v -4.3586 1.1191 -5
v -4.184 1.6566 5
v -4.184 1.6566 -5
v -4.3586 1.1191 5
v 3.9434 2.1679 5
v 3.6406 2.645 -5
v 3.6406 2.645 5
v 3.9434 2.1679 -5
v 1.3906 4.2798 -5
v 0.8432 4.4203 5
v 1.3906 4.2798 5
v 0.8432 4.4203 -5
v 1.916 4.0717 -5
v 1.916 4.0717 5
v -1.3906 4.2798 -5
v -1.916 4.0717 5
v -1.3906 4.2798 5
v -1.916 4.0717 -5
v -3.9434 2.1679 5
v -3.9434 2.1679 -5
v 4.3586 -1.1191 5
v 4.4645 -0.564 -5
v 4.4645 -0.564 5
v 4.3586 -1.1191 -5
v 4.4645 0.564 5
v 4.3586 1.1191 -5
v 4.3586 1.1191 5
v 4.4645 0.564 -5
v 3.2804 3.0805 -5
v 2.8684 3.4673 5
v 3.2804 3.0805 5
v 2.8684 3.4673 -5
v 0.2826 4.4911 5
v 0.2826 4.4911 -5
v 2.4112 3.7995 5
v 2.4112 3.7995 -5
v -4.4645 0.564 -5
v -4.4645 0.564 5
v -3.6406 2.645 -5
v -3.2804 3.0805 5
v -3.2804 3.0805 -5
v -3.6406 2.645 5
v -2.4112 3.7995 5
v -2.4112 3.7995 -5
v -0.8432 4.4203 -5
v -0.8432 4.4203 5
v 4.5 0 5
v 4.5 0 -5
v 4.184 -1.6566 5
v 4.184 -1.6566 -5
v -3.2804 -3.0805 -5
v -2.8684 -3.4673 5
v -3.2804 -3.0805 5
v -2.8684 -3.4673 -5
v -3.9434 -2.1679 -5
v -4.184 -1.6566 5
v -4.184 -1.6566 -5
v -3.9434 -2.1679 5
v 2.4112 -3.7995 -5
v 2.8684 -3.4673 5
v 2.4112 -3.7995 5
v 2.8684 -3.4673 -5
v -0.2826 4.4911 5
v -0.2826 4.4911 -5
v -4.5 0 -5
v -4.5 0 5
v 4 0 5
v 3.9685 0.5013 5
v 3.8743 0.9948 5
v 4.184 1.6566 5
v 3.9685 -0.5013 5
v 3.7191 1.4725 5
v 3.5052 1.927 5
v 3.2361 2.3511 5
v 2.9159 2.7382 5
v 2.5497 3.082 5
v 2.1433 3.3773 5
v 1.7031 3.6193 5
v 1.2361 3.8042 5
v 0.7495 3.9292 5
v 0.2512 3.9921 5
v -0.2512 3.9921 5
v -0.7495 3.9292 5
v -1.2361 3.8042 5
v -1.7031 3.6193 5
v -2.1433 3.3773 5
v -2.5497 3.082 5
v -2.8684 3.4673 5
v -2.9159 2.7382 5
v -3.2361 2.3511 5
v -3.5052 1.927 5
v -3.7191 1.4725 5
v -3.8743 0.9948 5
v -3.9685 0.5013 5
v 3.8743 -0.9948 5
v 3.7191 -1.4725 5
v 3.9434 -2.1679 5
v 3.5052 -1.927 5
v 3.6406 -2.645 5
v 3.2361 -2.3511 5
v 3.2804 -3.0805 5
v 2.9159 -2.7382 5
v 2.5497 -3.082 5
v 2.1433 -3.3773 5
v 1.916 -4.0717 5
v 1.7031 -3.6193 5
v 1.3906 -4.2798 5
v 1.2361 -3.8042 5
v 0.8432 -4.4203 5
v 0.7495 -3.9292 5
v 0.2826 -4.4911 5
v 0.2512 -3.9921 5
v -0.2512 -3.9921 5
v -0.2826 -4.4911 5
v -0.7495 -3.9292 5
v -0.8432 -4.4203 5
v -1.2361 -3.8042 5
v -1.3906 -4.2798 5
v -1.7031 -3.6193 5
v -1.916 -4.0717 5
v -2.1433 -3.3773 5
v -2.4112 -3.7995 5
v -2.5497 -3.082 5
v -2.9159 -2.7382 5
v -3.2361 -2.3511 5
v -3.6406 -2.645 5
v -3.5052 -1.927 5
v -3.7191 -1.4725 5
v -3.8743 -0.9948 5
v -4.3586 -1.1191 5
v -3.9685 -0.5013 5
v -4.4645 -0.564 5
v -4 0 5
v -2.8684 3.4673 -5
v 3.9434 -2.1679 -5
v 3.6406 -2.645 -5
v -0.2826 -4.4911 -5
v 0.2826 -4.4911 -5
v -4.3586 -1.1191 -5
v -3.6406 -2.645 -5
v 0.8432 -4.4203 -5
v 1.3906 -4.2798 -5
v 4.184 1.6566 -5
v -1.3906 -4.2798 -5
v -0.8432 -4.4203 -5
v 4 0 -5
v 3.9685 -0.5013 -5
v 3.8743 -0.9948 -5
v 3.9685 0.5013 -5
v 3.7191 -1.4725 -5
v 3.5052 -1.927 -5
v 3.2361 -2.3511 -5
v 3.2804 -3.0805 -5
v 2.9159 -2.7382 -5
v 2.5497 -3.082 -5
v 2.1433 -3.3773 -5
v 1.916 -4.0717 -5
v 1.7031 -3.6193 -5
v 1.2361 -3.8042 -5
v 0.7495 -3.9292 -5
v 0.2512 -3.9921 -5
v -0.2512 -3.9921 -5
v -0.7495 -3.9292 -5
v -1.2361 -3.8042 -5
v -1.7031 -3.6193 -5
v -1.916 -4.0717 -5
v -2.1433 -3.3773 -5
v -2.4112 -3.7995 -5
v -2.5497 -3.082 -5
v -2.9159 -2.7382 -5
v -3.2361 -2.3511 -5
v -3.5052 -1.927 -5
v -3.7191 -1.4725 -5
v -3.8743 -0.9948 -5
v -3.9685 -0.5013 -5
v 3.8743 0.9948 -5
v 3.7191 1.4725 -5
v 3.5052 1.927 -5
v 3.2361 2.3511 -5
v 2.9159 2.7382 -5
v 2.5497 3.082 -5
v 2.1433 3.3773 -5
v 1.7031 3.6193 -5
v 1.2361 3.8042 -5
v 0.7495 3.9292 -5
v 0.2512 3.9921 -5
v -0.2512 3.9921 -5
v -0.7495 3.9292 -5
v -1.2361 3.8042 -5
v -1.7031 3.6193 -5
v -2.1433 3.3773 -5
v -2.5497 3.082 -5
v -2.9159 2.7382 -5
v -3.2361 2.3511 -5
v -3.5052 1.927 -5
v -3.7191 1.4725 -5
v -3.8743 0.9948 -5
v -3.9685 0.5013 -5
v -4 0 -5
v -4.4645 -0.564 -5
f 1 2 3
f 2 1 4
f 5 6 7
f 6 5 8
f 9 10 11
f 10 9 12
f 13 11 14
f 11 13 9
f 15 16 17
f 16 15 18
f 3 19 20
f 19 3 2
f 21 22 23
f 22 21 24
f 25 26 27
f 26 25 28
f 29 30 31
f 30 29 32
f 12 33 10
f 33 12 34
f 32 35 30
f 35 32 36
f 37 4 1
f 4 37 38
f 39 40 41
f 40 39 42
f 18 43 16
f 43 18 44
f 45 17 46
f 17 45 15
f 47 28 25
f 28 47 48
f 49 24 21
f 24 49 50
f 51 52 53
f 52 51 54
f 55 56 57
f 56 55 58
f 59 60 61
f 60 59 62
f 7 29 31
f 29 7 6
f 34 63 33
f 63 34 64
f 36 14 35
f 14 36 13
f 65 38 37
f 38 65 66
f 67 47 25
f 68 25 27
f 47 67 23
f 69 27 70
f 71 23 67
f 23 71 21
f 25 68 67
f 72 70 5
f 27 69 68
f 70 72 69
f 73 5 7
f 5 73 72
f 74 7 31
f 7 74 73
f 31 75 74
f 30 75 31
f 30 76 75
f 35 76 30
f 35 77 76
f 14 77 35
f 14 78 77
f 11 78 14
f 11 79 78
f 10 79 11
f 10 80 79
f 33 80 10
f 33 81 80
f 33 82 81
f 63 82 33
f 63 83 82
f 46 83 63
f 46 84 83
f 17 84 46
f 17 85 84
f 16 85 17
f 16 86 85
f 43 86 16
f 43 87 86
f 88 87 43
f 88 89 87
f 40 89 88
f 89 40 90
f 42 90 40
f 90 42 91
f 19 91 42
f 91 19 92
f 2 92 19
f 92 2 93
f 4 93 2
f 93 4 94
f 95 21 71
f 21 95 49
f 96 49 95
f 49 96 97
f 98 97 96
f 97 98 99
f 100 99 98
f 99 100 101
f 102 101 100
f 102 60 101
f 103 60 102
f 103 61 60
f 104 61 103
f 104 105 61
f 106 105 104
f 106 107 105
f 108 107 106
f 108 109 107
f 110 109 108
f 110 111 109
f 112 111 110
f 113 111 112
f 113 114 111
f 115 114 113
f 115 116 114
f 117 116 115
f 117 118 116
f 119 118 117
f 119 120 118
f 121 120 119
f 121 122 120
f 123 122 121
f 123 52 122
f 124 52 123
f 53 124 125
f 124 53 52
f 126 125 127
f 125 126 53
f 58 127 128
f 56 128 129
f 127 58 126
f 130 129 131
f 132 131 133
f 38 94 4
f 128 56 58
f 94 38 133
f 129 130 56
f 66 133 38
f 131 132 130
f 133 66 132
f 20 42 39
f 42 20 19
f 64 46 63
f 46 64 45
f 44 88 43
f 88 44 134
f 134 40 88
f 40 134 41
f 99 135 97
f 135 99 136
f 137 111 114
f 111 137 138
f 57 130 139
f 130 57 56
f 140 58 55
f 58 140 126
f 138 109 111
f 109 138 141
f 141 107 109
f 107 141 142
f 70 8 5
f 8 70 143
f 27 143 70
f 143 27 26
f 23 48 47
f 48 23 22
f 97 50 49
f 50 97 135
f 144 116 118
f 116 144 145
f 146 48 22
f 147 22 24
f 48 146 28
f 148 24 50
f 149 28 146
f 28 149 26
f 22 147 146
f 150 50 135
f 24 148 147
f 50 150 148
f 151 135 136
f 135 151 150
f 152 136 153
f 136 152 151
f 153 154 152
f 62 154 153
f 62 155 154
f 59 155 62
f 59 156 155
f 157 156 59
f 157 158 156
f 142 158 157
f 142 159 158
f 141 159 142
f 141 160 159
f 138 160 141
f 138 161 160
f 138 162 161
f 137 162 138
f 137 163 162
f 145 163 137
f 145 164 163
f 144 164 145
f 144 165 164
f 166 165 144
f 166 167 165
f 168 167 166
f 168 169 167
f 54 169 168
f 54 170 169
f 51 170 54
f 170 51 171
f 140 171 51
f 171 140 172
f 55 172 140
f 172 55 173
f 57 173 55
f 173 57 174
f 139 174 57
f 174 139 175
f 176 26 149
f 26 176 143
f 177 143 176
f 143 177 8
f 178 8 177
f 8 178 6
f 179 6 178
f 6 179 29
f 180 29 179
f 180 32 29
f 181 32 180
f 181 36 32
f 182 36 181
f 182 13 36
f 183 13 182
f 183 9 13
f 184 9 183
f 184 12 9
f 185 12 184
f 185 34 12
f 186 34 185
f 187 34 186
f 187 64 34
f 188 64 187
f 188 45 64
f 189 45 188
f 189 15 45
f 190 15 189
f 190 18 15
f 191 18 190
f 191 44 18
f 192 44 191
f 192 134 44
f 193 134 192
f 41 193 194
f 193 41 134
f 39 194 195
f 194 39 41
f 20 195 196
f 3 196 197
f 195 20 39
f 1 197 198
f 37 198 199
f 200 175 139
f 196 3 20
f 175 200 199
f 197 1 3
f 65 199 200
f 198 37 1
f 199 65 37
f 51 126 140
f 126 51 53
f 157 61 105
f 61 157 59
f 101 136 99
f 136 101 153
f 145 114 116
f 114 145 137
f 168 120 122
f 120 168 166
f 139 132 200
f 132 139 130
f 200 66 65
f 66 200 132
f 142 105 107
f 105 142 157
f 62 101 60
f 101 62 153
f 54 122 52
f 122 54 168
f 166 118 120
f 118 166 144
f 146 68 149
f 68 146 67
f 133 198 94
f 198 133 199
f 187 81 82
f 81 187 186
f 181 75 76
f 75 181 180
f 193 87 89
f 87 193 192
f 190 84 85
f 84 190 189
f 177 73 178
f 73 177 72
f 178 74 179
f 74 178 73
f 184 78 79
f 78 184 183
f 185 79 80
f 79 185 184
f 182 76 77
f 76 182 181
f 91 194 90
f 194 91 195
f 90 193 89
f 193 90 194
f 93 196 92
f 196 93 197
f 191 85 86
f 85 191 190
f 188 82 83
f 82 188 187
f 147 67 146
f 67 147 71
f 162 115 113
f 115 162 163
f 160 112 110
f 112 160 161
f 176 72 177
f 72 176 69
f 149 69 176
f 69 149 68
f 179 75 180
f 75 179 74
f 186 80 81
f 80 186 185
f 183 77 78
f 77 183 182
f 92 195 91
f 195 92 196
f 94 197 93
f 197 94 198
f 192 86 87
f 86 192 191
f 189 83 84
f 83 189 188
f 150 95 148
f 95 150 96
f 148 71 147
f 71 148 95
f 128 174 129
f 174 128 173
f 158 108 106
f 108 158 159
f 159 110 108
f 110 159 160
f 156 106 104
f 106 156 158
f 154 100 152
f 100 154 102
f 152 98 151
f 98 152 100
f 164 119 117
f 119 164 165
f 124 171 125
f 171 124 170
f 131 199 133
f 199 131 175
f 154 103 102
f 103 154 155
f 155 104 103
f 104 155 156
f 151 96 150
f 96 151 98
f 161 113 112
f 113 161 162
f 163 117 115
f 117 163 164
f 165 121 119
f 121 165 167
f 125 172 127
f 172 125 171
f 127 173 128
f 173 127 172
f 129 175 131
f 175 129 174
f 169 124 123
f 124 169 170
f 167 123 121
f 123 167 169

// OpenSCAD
$fn = 50;


difference() {
	union() {
		translate(v = [0, 0, -5.0000000000]) {
			cylinder(h = 10, r = 4.5000000000);
		}
	}
	union() {
		translate(v = [0, 0, -100.0000000000]) {
			cylinder(h = 200, r = 4);
		}
	}
}
